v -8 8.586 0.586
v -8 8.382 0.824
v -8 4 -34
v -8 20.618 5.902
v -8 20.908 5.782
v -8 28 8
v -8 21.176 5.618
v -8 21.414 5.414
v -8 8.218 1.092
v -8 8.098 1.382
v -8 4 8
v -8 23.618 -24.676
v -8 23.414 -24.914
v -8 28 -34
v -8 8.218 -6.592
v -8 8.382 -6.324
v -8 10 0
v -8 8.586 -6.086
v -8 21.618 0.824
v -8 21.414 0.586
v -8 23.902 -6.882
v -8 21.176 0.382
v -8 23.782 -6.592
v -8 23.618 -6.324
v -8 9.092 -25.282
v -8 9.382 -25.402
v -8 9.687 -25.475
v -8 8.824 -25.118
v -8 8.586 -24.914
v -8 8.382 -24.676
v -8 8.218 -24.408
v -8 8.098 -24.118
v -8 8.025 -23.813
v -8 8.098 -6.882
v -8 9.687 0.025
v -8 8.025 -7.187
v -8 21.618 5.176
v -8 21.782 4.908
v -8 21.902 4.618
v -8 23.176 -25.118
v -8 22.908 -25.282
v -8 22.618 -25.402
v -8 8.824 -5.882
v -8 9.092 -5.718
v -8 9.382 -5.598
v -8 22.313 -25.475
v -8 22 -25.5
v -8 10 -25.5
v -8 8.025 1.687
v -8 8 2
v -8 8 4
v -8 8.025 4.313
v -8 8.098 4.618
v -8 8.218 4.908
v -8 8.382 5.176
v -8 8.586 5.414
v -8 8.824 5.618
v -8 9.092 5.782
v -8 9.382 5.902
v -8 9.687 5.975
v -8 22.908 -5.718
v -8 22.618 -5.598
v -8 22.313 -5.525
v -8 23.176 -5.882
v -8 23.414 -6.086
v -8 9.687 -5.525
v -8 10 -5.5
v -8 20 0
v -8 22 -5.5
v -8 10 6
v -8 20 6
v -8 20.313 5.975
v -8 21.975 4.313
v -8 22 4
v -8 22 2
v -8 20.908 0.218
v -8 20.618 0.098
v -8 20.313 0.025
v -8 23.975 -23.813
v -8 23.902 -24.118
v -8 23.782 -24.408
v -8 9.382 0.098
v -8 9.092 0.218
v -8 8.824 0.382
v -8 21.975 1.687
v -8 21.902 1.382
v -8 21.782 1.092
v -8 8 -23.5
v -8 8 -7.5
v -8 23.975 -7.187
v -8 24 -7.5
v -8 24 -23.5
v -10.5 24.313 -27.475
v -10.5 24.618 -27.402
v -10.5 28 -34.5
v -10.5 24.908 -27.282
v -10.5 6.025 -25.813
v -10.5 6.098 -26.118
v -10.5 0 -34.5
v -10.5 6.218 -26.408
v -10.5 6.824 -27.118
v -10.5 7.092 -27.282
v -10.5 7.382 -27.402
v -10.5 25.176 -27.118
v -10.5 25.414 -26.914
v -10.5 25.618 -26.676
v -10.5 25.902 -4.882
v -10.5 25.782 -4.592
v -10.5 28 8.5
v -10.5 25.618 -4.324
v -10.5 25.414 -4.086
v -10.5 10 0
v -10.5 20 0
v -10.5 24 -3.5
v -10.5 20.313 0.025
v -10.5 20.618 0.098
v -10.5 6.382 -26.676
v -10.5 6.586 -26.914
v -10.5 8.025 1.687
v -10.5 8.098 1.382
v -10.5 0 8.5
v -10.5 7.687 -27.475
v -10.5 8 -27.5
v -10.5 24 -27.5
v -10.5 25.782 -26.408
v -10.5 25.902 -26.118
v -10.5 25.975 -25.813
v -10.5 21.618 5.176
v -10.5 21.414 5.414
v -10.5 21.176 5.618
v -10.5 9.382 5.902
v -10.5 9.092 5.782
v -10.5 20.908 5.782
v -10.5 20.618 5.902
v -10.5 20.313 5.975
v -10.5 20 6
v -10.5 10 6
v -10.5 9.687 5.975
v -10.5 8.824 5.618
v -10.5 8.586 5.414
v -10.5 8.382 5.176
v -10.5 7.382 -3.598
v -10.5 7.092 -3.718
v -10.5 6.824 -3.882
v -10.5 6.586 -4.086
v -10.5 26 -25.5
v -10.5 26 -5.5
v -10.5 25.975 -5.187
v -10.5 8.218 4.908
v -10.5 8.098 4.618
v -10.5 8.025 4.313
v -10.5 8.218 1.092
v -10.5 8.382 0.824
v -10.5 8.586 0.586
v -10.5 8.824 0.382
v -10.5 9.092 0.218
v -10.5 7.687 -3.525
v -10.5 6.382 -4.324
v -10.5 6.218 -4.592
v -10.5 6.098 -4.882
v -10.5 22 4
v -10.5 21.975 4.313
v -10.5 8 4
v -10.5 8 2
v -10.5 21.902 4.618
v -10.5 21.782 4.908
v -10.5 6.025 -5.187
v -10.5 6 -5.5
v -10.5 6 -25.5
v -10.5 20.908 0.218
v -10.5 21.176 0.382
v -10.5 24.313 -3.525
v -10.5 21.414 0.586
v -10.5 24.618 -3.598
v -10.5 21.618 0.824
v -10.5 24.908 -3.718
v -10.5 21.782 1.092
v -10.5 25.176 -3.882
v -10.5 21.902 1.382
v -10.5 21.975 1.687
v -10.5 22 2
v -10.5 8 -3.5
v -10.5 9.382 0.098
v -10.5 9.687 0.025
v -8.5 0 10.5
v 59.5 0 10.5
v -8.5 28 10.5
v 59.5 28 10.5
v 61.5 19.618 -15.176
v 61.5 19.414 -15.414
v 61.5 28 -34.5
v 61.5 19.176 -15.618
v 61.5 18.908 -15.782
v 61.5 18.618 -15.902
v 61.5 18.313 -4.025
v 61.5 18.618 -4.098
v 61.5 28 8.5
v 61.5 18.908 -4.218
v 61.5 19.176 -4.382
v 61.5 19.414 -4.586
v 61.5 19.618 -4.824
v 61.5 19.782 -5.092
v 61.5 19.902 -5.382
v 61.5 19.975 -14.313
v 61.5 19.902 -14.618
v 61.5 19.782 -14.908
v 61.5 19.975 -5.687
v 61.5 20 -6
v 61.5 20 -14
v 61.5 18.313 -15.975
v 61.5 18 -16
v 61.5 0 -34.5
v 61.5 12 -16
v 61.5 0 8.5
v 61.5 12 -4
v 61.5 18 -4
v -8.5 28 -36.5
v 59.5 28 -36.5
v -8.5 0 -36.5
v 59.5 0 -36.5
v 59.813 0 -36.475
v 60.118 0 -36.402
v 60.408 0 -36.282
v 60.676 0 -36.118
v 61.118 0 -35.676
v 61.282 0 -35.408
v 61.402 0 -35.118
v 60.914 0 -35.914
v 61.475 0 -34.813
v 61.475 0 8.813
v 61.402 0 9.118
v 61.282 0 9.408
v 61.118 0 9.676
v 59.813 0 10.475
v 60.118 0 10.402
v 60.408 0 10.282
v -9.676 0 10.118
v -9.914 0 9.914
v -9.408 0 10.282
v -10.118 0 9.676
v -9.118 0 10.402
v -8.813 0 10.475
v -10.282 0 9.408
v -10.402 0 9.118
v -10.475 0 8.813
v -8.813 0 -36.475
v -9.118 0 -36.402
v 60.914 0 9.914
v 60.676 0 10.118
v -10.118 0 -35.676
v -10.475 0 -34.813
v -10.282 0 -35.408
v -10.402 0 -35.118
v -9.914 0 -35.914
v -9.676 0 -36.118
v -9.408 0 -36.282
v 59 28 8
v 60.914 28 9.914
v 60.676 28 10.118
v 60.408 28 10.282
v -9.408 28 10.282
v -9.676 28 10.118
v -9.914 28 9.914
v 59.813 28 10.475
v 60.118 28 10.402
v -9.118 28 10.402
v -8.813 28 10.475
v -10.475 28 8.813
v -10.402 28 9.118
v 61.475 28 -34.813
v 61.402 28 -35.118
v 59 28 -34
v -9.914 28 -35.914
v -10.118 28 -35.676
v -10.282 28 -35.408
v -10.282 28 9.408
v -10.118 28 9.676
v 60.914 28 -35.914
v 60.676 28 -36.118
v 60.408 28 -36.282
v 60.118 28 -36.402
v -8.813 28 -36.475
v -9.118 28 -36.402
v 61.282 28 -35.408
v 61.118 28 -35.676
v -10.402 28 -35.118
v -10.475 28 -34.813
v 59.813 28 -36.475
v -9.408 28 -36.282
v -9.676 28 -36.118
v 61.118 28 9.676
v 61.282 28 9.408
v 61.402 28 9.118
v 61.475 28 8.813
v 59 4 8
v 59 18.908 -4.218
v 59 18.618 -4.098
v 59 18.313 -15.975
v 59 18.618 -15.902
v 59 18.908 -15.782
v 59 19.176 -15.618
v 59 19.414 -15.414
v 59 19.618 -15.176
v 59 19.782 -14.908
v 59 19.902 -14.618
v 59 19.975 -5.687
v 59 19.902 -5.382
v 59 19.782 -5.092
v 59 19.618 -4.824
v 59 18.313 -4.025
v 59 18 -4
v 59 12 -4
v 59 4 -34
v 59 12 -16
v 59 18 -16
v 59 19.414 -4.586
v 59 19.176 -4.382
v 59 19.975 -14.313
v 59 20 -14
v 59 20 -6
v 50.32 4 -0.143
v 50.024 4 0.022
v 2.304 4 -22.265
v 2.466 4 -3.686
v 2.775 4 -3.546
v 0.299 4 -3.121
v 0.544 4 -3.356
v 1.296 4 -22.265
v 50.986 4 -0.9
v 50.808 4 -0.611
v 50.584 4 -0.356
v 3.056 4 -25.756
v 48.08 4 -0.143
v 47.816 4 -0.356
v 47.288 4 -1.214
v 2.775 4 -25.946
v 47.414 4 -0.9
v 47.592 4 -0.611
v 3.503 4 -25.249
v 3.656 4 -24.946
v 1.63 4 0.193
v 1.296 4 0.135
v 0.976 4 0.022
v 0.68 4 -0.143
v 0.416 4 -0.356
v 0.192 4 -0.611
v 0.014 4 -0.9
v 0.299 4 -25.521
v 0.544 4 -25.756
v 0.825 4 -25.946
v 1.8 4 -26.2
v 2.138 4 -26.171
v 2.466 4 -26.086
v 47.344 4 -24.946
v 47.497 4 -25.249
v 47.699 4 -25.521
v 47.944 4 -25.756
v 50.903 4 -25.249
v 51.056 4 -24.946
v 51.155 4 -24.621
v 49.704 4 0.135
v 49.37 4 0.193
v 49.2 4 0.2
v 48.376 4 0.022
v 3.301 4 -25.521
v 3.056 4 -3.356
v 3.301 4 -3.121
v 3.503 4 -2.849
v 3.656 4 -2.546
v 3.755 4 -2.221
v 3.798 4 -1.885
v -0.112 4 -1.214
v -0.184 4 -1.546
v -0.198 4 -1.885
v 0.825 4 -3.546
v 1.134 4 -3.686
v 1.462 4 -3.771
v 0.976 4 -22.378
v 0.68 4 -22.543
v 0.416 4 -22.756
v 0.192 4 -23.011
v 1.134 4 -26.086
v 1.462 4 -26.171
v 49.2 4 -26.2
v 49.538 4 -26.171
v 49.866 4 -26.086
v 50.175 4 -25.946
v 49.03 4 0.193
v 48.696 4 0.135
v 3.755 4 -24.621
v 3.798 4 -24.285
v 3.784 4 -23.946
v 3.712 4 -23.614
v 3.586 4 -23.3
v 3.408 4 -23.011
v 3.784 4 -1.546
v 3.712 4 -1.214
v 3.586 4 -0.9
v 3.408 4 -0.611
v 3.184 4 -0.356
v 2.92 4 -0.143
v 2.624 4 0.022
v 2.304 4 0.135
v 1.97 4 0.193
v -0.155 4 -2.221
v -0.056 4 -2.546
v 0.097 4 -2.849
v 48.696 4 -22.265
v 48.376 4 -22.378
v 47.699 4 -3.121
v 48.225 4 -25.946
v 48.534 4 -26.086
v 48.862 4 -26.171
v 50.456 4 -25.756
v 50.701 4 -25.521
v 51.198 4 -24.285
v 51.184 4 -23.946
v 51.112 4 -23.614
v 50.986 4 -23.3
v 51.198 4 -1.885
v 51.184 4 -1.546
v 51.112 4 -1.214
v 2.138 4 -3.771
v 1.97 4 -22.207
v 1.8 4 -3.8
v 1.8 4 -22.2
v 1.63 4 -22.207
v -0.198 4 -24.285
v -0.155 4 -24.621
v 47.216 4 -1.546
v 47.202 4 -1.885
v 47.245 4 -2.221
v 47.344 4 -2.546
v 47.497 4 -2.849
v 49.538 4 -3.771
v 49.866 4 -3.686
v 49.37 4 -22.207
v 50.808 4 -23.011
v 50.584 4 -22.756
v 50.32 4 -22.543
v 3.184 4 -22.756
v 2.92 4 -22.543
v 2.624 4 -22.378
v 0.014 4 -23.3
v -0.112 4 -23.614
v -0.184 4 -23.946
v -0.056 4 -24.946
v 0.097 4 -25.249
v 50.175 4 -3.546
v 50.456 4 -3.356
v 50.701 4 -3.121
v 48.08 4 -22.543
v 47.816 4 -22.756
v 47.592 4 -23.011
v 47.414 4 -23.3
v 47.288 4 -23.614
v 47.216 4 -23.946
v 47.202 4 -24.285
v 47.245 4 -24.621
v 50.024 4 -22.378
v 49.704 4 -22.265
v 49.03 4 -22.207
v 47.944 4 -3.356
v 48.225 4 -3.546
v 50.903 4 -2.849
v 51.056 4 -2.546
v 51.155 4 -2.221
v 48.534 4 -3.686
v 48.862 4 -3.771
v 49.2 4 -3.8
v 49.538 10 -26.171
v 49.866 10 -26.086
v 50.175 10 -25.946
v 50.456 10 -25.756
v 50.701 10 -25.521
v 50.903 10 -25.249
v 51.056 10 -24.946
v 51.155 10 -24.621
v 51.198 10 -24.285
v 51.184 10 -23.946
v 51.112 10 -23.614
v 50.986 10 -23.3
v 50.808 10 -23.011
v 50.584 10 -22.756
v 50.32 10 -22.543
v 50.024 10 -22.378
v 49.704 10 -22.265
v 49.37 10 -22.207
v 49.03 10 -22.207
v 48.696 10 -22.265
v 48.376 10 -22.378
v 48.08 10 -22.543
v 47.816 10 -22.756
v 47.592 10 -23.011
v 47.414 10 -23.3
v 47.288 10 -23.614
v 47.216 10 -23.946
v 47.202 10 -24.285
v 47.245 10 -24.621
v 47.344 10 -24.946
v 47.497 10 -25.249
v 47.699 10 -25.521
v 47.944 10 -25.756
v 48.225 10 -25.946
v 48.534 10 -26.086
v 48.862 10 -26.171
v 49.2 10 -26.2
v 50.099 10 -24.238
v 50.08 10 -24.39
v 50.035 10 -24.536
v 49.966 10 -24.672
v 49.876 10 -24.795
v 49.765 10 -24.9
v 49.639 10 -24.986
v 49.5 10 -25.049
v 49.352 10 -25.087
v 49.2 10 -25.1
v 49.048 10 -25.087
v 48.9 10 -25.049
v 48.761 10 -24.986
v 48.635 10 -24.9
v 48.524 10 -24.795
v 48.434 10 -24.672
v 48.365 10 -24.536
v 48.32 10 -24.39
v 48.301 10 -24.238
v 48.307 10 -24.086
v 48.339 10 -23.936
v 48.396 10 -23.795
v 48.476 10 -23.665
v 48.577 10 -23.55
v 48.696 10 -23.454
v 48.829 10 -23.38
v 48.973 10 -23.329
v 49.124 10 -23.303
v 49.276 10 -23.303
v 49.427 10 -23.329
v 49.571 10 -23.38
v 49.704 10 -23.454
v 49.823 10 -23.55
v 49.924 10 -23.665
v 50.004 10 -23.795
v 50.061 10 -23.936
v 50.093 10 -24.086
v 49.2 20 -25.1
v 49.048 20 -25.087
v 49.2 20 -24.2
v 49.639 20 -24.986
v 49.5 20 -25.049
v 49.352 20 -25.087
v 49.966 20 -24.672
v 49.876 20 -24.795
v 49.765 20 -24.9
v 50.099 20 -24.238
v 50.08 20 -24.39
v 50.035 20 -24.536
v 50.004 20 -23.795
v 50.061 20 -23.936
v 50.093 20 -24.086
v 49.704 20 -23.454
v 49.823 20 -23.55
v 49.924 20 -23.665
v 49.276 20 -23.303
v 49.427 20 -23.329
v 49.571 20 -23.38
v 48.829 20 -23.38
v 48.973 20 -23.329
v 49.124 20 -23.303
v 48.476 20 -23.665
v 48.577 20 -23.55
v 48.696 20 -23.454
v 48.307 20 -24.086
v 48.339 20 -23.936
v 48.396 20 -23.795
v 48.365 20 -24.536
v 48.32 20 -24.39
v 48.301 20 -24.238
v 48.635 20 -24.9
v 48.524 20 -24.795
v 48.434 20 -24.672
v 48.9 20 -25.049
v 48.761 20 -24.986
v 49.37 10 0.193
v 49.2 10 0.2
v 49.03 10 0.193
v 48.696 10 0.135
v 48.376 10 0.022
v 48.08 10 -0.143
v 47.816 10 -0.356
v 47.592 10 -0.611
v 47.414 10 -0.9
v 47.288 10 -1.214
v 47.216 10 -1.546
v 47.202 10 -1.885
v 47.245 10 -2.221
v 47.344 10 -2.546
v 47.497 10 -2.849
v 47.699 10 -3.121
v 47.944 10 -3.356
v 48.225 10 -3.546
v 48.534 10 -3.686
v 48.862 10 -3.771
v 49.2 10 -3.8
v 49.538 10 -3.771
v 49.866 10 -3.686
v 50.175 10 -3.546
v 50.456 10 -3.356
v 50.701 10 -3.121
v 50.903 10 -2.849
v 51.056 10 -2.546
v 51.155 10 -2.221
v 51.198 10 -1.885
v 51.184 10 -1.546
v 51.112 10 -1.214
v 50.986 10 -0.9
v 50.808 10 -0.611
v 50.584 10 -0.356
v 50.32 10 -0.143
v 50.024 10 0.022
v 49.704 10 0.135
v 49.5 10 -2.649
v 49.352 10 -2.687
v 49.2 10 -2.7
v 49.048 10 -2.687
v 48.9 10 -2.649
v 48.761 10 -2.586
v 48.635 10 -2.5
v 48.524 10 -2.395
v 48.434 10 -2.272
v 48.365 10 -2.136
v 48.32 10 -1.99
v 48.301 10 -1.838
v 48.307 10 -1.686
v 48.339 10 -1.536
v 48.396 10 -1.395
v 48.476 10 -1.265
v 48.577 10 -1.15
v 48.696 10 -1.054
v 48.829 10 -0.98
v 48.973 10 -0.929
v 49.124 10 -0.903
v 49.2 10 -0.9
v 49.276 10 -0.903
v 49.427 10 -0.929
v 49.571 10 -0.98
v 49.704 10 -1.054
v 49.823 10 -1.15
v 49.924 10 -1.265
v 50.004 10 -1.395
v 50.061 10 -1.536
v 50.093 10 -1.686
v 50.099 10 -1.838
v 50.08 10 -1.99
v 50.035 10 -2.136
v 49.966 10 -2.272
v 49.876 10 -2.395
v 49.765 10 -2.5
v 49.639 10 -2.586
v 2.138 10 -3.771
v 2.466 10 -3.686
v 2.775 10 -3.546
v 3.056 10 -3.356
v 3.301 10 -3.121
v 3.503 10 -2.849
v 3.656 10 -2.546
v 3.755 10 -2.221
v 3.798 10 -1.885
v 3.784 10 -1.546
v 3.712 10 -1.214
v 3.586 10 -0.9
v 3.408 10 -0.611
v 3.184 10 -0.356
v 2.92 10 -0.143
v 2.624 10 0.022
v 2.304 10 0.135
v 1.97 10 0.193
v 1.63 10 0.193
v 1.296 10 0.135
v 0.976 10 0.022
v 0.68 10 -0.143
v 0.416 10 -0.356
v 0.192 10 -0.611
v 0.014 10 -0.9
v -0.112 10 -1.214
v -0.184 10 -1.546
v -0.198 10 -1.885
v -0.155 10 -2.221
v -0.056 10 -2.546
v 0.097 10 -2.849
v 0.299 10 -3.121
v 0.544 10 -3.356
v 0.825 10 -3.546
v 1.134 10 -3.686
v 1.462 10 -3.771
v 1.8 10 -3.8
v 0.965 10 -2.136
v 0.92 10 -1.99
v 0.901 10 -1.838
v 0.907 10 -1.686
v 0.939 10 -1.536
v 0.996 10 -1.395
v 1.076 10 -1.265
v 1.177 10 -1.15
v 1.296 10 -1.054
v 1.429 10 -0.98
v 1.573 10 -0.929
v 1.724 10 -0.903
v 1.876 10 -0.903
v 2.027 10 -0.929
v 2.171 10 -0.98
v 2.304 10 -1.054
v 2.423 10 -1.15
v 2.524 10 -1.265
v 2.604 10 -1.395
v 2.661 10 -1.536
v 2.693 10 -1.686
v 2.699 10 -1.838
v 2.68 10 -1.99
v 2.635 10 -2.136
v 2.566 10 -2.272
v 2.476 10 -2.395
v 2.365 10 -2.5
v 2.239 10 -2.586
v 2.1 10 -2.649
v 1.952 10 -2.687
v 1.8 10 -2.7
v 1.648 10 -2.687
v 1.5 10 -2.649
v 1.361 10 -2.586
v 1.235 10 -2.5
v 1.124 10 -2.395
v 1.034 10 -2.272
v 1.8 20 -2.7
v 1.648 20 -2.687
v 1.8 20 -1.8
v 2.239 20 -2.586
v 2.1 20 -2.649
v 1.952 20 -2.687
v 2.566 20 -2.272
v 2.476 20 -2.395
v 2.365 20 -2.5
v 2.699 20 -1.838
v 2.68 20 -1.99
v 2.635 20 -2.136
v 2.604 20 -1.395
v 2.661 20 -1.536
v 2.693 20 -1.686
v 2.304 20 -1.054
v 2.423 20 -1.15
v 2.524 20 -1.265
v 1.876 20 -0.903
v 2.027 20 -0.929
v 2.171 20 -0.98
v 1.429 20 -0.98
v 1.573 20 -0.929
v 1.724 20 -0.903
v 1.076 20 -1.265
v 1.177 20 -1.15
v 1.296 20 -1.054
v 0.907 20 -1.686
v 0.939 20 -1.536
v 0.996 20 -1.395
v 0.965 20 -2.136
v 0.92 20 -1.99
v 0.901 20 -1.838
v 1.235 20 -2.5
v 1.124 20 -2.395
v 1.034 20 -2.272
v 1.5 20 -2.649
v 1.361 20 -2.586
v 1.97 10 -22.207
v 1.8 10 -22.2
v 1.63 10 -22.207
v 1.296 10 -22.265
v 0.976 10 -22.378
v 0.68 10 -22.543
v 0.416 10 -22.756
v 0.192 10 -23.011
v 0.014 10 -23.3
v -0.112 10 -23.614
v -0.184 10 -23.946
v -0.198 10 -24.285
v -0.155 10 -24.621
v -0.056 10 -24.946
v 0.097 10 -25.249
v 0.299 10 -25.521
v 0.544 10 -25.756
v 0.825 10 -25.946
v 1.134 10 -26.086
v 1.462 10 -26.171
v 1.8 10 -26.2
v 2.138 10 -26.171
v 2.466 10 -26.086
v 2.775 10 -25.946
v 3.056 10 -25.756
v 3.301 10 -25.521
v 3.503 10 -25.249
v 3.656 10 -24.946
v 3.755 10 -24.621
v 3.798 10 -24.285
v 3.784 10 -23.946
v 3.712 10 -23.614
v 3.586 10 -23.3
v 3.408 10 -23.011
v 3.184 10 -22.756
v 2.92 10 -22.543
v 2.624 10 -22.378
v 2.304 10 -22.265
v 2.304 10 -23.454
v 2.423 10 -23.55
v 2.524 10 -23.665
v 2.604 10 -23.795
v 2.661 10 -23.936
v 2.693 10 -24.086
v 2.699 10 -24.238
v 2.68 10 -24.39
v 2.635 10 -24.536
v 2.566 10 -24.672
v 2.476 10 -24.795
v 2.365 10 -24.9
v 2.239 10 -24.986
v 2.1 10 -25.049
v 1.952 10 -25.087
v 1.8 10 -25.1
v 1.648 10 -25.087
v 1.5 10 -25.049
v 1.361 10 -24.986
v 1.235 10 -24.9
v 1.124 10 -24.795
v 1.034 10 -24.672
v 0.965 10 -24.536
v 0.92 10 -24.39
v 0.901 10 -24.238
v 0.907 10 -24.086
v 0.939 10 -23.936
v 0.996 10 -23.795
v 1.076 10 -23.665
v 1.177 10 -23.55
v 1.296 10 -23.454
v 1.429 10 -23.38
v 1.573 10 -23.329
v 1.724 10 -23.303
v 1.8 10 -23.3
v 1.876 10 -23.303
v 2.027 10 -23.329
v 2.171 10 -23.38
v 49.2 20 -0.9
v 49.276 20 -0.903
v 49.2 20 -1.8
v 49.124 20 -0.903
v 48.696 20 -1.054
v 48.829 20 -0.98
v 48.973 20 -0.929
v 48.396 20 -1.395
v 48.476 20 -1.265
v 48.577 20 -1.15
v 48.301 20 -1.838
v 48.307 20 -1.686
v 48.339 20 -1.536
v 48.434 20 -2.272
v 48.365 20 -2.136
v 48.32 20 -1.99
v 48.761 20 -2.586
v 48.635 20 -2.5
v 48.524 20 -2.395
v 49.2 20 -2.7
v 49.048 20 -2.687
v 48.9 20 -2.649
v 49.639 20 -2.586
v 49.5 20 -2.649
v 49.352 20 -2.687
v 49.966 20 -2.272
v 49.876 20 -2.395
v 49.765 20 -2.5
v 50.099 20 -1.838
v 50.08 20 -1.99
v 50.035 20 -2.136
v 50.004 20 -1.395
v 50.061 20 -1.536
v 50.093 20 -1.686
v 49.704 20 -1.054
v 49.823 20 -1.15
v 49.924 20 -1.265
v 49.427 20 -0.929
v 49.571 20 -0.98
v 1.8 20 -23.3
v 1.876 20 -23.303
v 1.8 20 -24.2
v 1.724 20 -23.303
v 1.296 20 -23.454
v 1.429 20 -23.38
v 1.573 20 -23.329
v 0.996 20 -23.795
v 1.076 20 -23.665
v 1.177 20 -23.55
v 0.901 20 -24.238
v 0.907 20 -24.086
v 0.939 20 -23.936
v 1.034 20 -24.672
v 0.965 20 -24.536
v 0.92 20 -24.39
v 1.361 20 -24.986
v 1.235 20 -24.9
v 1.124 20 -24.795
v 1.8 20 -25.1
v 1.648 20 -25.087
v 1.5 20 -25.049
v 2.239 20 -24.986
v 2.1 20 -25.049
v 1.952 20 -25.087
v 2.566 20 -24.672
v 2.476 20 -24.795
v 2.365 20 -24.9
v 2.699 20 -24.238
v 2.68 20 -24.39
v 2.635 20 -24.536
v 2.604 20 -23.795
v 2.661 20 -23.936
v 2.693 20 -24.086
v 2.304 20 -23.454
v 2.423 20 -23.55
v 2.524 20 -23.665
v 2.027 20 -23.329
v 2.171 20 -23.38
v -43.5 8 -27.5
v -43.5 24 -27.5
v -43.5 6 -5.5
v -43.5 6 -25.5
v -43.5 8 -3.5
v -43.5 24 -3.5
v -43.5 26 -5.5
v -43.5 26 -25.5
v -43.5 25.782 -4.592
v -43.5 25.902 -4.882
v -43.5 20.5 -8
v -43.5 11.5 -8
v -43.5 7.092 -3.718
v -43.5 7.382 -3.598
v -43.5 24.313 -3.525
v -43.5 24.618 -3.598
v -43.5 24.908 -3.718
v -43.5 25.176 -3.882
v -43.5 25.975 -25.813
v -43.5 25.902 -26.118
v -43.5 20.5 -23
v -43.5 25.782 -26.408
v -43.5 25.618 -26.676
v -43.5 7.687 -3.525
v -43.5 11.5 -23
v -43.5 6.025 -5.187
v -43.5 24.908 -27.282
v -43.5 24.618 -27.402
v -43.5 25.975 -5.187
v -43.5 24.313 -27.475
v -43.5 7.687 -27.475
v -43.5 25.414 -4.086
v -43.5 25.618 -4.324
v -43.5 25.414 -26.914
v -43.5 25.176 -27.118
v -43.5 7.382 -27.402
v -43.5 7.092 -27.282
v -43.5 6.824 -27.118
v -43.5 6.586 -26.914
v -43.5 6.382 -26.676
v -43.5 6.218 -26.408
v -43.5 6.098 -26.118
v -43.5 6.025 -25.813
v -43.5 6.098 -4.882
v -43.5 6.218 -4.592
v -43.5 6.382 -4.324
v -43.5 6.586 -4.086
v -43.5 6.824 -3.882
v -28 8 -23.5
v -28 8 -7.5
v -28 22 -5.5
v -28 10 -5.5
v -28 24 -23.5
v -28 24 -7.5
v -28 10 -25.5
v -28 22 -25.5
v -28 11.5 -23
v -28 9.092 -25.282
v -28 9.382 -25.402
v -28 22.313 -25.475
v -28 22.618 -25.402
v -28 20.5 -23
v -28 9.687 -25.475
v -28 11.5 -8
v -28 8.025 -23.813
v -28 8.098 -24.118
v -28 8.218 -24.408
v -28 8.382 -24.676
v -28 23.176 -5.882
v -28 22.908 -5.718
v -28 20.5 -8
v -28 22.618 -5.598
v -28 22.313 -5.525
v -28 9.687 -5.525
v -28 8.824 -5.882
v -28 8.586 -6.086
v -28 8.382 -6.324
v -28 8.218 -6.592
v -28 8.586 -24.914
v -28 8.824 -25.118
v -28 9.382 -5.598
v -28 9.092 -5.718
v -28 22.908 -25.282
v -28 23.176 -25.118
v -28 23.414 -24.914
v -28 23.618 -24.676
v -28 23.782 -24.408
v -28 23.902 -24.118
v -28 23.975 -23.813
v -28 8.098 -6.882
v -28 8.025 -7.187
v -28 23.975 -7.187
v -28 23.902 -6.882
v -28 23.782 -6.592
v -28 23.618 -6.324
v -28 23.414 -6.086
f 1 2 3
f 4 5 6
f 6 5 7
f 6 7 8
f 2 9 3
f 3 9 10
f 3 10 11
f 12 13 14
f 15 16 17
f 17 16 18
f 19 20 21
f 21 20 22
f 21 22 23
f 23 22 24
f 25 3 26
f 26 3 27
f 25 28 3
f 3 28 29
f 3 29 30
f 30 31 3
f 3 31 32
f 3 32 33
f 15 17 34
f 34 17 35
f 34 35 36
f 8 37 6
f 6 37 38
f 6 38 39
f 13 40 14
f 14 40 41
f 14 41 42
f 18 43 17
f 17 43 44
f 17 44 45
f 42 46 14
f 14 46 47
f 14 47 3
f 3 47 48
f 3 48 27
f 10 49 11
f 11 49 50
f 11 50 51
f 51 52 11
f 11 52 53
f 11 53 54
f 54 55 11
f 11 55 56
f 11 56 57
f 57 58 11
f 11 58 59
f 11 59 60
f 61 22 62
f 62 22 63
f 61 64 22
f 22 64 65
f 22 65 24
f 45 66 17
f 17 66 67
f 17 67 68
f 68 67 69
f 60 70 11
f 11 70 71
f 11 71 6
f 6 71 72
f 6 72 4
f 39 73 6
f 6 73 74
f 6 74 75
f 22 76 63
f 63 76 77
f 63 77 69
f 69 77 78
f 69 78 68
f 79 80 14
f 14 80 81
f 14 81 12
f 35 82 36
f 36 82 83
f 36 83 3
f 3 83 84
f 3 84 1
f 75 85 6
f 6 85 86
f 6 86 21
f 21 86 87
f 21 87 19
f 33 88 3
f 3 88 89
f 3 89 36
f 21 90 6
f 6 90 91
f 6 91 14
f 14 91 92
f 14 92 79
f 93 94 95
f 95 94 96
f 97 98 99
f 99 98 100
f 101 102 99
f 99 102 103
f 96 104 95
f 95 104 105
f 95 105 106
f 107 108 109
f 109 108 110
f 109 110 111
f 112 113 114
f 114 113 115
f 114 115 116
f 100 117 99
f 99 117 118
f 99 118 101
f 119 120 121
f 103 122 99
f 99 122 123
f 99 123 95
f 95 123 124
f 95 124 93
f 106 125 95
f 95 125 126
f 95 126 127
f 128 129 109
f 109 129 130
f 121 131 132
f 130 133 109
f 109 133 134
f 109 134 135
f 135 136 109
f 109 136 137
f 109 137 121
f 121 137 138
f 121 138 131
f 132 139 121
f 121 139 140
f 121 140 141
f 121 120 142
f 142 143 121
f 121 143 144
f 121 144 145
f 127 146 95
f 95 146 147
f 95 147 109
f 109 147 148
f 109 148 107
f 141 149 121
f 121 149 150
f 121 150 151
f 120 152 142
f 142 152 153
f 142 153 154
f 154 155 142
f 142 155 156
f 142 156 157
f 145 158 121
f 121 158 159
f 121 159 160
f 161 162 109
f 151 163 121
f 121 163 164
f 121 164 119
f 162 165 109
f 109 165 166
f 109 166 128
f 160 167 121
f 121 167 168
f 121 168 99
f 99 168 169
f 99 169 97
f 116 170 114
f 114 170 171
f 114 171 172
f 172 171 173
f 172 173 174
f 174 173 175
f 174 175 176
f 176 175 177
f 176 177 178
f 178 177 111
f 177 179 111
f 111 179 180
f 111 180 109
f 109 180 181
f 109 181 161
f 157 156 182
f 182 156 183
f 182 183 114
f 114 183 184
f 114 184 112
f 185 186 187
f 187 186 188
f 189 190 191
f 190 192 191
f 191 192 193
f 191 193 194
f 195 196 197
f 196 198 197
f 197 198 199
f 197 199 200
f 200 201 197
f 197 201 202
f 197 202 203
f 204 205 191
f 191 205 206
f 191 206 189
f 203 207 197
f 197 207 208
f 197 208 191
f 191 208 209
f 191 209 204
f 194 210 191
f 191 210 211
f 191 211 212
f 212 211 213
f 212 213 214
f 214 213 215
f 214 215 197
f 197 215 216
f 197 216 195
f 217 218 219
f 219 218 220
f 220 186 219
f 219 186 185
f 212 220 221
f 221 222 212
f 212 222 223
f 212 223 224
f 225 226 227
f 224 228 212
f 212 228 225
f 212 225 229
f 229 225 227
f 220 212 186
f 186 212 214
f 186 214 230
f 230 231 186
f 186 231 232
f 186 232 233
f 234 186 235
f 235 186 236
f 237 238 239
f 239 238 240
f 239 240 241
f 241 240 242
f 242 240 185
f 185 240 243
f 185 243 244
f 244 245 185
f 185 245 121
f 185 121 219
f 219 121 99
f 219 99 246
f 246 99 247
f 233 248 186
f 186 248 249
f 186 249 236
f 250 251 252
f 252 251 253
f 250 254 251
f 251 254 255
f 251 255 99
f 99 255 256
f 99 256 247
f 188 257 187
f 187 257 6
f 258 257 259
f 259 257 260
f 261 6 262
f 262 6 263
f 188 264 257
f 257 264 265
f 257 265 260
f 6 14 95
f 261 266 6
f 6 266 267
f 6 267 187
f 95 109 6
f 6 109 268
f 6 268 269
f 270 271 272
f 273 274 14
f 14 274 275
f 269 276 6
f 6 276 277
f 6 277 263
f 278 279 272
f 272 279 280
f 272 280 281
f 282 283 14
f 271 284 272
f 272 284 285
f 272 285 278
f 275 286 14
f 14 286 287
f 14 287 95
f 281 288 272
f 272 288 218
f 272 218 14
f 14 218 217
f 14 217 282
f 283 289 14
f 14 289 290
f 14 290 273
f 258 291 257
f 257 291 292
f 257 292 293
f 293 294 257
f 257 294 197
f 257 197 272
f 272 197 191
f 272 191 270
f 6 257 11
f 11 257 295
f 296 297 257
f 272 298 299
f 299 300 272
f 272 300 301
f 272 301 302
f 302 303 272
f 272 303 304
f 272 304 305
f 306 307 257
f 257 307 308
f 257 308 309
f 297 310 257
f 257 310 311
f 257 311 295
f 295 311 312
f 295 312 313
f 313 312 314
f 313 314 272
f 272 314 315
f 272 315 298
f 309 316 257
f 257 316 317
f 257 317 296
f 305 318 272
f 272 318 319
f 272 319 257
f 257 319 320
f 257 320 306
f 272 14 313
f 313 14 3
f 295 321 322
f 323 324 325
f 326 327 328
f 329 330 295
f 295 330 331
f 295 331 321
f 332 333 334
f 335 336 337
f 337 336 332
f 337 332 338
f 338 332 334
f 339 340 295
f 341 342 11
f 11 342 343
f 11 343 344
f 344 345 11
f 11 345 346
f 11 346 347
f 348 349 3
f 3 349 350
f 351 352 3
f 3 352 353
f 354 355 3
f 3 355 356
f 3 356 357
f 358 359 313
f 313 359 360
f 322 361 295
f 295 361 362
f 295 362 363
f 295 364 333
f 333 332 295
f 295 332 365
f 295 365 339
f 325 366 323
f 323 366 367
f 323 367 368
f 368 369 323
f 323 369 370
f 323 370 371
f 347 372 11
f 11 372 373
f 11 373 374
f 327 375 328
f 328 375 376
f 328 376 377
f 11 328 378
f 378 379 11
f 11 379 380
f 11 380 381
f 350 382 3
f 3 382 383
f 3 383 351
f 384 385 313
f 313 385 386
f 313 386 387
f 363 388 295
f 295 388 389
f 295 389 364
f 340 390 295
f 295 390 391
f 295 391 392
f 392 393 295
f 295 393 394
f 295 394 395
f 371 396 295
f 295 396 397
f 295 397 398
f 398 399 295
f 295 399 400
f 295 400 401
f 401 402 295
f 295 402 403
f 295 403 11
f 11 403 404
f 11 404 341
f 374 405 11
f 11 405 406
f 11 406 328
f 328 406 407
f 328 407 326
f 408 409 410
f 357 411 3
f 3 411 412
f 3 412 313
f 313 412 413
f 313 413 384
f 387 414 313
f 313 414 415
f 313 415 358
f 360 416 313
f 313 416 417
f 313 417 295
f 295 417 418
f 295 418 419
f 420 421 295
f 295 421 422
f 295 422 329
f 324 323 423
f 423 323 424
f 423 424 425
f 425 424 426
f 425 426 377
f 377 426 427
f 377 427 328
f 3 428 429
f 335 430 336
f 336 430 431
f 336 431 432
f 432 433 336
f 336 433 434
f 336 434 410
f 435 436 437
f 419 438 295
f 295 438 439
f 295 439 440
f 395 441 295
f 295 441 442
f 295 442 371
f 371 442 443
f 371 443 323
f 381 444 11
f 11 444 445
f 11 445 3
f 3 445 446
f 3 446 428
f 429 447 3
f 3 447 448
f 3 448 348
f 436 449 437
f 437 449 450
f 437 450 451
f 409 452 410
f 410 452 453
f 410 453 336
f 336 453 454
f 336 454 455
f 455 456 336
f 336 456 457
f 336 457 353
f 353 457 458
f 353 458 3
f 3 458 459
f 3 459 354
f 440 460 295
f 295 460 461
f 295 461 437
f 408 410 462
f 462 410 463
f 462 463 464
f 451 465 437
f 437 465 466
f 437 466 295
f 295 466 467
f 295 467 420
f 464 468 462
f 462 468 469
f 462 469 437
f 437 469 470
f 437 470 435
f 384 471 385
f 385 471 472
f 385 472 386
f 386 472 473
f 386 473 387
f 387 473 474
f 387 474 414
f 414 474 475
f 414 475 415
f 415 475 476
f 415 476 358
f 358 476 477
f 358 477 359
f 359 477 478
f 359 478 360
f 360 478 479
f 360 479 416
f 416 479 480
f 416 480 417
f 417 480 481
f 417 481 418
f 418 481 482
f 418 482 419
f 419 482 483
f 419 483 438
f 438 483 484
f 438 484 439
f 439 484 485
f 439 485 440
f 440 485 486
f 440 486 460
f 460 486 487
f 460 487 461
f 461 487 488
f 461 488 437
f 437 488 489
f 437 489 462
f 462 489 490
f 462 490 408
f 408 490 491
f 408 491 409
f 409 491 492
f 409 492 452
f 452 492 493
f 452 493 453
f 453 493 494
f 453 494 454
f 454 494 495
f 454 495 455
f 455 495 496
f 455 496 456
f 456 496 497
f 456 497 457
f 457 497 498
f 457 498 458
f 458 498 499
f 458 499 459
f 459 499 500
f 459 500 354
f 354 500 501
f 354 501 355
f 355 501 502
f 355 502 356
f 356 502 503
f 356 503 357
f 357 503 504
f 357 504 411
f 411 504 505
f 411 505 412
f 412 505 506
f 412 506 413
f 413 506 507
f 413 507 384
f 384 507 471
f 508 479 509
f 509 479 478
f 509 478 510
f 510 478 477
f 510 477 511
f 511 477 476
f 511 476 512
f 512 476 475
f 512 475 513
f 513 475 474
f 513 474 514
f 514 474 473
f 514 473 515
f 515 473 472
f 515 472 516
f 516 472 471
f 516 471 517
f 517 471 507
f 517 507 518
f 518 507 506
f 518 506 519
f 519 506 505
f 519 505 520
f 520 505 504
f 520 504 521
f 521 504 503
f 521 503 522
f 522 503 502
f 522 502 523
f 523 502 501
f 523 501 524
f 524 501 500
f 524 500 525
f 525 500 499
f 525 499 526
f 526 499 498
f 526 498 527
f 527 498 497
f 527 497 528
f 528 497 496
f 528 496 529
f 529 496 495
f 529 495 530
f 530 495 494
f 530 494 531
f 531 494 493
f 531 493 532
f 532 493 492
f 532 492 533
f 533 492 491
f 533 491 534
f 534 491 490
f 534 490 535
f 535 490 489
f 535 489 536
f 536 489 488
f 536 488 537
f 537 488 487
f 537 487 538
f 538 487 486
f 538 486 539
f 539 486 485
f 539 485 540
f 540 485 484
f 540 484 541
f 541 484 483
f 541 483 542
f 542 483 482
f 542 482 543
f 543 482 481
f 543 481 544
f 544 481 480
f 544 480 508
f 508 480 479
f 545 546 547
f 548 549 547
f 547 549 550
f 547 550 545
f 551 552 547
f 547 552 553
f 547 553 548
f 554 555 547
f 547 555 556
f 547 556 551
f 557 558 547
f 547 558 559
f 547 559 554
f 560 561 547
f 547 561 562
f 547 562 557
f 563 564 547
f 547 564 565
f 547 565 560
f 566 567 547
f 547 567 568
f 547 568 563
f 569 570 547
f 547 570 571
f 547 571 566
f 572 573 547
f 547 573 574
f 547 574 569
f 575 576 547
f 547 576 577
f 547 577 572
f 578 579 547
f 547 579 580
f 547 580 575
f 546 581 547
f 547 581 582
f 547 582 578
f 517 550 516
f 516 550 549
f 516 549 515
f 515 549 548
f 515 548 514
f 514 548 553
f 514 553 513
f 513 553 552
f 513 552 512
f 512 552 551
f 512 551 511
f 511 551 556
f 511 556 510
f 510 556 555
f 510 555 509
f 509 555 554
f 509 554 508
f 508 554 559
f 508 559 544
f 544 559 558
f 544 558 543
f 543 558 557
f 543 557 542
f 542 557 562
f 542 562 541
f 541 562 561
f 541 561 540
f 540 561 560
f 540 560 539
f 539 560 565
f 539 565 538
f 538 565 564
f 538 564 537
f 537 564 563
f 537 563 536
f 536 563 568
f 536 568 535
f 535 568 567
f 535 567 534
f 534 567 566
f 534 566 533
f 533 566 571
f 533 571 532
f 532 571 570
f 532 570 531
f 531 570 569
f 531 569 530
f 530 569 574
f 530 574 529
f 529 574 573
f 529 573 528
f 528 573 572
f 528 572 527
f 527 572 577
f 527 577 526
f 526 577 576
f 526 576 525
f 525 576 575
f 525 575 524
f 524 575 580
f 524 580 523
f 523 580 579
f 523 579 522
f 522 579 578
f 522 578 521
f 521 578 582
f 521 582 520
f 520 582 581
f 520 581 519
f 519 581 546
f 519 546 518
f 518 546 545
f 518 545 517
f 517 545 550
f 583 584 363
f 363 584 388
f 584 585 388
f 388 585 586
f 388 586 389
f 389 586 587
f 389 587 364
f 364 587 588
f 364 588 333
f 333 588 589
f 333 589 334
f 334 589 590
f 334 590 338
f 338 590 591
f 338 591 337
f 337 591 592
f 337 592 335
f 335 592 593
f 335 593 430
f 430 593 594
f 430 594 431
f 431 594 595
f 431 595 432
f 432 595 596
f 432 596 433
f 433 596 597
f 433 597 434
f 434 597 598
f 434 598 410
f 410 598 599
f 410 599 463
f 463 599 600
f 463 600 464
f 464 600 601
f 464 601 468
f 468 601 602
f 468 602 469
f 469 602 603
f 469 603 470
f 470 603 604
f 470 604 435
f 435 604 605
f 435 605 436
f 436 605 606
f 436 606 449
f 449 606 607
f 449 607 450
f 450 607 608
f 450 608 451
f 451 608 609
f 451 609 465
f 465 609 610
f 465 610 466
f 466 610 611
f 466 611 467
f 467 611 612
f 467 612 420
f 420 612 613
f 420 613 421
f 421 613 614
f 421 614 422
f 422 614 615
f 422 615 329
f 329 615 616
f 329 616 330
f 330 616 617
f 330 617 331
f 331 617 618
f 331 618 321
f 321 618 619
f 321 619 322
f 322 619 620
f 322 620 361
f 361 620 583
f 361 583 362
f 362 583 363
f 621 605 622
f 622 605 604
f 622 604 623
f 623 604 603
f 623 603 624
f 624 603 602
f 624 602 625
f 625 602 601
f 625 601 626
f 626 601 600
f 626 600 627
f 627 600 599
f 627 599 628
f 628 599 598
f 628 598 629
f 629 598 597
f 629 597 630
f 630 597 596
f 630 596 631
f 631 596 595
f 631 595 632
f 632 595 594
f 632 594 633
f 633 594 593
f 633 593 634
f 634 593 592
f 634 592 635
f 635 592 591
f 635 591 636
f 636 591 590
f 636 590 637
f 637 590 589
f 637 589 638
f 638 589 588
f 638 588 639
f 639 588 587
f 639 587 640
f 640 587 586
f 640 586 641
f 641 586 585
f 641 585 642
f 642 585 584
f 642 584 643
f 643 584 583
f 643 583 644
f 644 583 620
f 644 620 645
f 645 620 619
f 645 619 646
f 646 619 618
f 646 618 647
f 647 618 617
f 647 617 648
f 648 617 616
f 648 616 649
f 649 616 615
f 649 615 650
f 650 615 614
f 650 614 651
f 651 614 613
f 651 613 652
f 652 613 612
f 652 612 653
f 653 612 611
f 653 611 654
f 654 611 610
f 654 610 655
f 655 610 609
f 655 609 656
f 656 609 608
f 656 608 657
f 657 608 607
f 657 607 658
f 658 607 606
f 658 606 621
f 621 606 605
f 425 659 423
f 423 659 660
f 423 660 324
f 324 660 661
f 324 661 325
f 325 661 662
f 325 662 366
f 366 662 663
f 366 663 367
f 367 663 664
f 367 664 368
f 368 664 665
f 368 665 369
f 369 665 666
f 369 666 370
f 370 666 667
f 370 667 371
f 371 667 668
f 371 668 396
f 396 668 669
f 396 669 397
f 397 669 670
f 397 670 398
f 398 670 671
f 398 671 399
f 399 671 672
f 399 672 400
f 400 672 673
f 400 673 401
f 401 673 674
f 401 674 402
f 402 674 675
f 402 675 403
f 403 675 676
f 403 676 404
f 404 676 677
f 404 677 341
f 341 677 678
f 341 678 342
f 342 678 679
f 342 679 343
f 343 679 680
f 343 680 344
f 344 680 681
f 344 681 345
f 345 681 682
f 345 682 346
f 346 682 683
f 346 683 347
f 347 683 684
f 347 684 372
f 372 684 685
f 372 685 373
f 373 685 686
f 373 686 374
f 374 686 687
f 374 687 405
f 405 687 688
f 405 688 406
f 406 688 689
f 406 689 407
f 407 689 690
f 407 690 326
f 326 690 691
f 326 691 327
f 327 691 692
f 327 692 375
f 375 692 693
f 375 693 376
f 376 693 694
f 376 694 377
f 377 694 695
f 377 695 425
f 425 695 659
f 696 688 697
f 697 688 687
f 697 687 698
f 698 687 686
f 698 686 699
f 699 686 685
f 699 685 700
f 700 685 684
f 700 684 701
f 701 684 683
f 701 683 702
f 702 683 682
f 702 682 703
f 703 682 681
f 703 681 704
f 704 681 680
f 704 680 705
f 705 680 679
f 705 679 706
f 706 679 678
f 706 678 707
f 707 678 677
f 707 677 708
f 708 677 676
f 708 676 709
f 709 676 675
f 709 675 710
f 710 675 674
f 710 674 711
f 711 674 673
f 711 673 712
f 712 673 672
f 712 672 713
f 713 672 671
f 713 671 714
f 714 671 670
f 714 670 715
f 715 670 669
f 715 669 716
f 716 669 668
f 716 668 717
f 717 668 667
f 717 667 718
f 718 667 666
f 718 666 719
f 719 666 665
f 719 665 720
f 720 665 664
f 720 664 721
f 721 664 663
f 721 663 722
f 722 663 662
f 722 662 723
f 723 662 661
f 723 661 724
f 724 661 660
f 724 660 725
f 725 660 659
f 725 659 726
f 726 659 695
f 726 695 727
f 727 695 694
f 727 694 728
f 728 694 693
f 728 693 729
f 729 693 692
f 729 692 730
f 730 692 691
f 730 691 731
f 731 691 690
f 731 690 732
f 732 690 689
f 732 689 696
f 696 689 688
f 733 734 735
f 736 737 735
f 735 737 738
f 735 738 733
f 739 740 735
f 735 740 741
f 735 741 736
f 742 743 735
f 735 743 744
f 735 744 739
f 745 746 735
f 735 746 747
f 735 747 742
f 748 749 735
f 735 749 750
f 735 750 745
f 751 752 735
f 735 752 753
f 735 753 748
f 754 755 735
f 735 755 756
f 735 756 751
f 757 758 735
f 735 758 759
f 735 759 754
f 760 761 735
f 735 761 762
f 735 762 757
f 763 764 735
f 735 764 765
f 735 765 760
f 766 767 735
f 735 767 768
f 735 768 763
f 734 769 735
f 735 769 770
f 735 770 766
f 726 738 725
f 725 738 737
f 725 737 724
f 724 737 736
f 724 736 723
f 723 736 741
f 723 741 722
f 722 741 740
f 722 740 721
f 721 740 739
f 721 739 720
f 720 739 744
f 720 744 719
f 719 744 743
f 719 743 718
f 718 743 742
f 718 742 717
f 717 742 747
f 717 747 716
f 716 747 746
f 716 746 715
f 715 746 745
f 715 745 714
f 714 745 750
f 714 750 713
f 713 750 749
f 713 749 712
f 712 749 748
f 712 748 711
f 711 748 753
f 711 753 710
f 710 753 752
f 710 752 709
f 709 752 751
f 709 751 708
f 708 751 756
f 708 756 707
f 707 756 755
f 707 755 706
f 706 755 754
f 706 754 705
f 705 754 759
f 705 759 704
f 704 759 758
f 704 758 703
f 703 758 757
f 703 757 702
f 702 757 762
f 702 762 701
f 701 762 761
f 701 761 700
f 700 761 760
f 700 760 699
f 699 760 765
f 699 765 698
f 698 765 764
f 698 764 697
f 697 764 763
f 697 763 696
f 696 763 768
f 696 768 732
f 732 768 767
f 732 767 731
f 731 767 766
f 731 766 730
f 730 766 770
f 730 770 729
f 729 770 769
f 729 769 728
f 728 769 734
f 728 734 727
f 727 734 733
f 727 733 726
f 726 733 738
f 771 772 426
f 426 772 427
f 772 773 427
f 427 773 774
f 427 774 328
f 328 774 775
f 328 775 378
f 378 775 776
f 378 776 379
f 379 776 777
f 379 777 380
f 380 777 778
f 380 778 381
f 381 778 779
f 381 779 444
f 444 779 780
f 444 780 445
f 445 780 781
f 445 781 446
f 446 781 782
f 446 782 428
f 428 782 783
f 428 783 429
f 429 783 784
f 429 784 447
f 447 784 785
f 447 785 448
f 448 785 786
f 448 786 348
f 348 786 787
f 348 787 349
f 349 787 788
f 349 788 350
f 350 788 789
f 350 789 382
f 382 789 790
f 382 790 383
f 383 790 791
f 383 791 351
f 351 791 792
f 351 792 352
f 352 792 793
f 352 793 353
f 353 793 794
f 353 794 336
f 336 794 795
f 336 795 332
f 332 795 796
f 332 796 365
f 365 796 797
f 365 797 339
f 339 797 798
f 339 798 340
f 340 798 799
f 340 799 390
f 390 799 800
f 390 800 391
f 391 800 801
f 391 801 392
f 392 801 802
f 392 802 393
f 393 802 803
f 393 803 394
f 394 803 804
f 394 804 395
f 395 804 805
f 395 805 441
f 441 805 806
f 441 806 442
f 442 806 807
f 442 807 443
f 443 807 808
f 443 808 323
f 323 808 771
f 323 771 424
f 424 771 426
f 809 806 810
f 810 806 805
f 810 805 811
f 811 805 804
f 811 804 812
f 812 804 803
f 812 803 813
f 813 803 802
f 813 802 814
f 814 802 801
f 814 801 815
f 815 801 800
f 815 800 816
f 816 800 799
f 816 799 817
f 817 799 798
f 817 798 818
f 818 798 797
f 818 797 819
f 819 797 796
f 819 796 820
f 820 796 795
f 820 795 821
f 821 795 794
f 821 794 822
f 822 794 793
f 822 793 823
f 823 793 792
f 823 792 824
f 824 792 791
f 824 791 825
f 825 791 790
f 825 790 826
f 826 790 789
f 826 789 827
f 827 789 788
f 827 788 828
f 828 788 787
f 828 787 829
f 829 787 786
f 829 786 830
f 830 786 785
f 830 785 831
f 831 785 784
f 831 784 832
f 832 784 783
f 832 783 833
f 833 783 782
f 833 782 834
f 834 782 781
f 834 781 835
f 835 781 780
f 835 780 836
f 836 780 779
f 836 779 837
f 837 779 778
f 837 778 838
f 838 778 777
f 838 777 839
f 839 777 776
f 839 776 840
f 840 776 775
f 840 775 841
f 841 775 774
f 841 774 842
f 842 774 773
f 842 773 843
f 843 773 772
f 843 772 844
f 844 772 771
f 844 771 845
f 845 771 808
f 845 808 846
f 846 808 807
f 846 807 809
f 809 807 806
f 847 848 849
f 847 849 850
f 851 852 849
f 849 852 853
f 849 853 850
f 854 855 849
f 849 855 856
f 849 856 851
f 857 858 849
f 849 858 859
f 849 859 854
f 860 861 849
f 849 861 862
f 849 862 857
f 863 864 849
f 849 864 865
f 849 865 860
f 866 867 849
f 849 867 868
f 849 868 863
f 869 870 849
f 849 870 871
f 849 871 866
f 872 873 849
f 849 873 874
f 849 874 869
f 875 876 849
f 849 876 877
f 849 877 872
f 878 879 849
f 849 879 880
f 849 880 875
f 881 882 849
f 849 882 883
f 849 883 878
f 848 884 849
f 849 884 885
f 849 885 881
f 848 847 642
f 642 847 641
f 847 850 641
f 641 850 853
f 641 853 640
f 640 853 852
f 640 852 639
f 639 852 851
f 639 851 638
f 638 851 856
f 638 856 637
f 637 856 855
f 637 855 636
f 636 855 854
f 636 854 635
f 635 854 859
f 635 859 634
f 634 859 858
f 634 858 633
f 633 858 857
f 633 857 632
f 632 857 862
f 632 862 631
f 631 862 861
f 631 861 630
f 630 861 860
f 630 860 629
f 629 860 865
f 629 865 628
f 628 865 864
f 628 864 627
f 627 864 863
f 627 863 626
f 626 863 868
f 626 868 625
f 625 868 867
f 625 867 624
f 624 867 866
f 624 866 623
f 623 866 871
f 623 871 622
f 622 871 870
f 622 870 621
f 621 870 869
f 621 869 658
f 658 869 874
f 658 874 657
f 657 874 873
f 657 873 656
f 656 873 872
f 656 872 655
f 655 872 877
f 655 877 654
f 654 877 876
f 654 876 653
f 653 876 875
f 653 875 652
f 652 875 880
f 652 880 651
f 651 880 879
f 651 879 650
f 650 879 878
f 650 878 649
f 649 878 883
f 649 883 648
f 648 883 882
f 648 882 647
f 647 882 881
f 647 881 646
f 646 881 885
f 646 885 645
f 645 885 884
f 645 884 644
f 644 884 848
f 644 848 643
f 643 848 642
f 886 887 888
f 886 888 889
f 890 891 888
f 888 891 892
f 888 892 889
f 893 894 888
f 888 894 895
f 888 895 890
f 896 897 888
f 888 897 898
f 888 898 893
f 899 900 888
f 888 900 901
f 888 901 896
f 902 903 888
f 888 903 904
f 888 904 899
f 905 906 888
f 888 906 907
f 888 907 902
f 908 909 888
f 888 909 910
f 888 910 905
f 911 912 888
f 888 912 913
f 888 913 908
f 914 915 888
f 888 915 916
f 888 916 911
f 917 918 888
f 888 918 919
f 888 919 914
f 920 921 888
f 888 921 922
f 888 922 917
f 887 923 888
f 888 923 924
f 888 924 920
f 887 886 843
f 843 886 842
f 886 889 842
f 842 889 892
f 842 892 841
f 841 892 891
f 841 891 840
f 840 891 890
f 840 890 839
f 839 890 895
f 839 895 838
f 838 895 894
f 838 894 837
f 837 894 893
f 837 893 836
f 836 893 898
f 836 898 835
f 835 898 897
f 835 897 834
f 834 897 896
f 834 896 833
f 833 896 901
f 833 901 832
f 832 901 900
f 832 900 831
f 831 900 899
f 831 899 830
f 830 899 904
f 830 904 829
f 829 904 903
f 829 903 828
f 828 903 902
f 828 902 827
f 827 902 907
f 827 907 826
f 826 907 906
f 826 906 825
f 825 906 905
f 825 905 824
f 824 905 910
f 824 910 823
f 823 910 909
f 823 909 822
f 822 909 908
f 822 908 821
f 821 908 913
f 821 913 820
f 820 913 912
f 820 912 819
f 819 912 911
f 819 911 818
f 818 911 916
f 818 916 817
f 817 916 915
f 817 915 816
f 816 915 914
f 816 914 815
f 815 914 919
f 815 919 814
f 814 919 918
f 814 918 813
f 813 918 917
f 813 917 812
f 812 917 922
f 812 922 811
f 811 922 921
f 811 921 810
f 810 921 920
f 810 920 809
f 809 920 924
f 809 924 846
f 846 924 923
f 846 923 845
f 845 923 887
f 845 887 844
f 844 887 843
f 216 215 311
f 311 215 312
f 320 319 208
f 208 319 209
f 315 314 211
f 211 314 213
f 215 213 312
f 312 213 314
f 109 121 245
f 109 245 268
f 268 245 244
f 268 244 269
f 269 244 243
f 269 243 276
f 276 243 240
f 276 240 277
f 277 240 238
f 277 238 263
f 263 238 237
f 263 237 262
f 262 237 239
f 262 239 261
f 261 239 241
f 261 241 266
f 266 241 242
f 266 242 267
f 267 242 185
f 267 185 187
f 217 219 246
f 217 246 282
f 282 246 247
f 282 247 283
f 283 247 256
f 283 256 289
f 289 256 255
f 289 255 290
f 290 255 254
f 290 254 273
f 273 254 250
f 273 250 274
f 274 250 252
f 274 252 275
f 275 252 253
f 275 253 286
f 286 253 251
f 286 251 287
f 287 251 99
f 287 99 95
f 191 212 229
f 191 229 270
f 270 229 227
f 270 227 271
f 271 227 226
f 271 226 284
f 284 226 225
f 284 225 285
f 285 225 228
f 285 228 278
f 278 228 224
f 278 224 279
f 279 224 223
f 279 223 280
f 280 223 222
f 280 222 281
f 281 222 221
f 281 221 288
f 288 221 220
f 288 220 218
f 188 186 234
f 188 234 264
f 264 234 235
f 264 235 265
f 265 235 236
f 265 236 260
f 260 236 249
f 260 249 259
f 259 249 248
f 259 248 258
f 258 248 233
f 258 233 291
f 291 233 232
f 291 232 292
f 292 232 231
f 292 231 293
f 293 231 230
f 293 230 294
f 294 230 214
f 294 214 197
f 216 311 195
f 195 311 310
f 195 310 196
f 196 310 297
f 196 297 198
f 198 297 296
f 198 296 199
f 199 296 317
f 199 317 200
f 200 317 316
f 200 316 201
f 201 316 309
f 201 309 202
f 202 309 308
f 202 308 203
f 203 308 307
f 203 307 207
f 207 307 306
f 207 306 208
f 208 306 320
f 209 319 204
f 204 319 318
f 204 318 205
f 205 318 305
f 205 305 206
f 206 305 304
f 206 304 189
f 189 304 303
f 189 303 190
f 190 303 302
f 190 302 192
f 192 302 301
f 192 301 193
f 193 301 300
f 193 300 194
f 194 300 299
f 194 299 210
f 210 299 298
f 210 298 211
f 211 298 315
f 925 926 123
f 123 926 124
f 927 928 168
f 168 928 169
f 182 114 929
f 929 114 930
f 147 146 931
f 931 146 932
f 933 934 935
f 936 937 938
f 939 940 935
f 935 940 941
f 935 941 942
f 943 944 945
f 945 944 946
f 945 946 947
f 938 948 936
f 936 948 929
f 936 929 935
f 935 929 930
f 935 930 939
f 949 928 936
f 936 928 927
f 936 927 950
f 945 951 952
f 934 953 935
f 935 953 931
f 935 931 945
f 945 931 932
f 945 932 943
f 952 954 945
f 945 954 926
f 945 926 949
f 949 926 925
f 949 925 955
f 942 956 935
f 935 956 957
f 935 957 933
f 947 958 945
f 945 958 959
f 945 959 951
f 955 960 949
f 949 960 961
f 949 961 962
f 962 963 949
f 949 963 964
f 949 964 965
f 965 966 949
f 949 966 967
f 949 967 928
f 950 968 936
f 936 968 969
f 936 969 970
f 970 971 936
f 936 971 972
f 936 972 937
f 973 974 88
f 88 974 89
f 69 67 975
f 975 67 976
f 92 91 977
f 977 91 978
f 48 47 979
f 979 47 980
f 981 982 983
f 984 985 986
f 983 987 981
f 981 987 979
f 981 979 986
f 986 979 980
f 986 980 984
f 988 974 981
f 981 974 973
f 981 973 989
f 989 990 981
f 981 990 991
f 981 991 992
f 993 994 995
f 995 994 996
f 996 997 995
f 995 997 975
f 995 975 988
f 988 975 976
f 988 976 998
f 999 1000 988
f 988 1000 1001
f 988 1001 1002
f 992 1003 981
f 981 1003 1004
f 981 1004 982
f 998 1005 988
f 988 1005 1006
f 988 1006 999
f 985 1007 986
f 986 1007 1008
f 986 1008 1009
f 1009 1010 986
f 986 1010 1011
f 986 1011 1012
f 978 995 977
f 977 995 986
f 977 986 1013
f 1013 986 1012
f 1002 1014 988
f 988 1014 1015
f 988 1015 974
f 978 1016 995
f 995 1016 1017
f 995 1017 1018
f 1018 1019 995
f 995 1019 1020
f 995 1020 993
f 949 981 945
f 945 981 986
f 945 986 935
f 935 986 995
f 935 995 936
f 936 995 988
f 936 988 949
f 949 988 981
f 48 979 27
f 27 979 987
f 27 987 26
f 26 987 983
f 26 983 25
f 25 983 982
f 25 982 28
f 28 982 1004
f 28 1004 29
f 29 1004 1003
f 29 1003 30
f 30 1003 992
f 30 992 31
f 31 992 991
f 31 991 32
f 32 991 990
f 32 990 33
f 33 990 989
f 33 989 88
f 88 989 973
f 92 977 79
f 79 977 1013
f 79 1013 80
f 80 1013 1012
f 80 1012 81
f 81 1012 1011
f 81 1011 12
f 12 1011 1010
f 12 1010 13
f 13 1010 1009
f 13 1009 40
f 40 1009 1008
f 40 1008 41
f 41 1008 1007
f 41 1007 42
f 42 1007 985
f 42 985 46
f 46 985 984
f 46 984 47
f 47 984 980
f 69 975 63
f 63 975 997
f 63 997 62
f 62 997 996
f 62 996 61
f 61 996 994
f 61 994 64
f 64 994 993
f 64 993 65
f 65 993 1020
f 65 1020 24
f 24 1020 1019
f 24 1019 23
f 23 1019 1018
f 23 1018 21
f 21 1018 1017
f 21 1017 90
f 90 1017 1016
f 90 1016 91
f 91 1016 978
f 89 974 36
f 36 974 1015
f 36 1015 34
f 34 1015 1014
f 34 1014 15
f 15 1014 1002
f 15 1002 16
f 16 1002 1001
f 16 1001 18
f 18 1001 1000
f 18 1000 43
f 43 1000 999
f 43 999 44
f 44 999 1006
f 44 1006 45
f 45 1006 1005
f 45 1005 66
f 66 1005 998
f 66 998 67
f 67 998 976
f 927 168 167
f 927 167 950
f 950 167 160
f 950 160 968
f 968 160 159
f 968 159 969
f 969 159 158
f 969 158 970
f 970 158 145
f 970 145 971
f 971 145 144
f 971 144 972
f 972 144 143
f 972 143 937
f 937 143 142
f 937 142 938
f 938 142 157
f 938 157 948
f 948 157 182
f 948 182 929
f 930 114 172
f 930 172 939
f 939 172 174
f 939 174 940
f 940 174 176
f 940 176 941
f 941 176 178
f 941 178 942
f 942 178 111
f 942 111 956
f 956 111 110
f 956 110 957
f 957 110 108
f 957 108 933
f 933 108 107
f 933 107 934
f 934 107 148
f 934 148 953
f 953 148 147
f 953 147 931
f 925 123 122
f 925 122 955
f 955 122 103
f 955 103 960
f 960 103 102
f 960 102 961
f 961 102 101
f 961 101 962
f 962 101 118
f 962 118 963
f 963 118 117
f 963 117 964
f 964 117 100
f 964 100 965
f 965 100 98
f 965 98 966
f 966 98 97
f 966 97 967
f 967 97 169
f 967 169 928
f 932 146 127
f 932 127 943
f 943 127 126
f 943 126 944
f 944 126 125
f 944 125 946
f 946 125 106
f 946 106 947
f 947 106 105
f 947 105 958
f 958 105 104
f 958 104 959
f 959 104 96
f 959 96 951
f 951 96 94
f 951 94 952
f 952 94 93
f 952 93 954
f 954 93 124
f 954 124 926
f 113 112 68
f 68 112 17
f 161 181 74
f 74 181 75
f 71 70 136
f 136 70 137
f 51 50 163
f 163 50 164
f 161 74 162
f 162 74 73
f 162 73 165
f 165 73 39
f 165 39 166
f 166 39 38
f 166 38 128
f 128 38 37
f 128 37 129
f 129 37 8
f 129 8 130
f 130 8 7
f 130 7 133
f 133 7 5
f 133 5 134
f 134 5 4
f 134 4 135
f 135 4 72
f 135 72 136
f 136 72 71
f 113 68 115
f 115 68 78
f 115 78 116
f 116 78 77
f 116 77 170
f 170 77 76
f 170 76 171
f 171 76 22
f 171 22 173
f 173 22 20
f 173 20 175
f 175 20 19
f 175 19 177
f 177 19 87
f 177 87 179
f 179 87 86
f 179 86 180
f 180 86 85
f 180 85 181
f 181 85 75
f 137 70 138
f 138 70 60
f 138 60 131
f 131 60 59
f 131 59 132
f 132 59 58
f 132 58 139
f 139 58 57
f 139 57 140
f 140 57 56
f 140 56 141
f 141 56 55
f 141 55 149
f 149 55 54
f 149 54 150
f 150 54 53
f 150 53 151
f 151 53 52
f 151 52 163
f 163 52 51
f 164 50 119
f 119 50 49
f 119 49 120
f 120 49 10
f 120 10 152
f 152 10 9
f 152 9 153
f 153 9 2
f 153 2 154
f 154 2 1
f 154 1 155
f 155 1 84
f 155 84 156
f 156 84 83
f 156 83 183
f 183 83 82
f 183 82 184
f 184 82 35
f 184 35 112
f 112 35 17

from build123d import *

# Parameters (mm, degrees)
SKETCH1_W           = 72
SKETCH1_H           = 47
BOSS_EXTRUDE1_DEPTH = 4
SKETCH3_W           = 72
SKETCH3_H           = 47
SKETCH3_W_2         = 67
SKETCH3_H_2         = 42
BOSS_EXTRUDE3_DEPTH = 24
SKETCH2_R           = 0.9
BOSS_EXTRUDE4_DEPTH = 16
SKETCH4_R           = 2
BOSS_EXTRUDE5_DEPTH = 6
SKETCH5_W           = 12
SKETCH5_H           = 8
CUT_EXTRUDE1_DEPTH  = 6
FILLET2_R           = 2
FILLET3_R           = 2
SKETCH11_W          = 24
SKETCH11_H          = 20
BOSS_EXTRUDE7_DEPTH = 33
SKETCH12_W          = 20
SKETCH12_H          = 16
CUT_EXTRUDE4_DEPTH  = 20
SKETCH13_W          = 15
SKETCH13_H          = 9
CUT_EXTRUDE5_DEPTH  = 20
FILLET4_R           = 2
FILLET5_R           = 2
SKETCH14_W          = 6
SKETCH14_H          = 14
CUT_EXTRUDE6_DEPTH  = 5
FILLET6_R           = 2


with BuildPart() as part:
    # Sketch1 → Boss-Extrude1 (new body)
    with BuildSketch(Plane(origin=(0, 0, 0), x_dir=(1, 0, 0), z_dir=(0, 1, 0))):
        with Locations((25.5, 13)):
            Rectangle(SKETCH1_W, SKETCH1_H)
    extrude(amount=BOSS_EXTRUDE1_DEPTH)

    # Sketch3 → Boss-Extrude3 (add)
    with BuildSketch(Plane(origin=(0, 4, 0), x_dir=(1, 0, 0), z_dir=(0, 1, 0))):
        with Locations((25.5, 13)):
            Rectangle(SKETCH3_W, SKETCH3_H)
        with Locations((25.5, 13)):
            Rectangle(SKETCH3_W_2, SKETCH3_H_2, mode=Mode.SUBTRACT)
    extrude(amount=BOSS_EXTRUDE3_DEPTH)

    # Sketch2 → Boss-Extrude4 (add)
    with BuildSketch(Plane(origin=(0, 4, 0), x_dir=(1, 0, 0), z_dir=(0, 1, 0))):
        with Locations(Location((1.8, 24.2, 0), (0, 0, 270))):
            Circle(SKETCH2_R)
        with Locations(Location((1.8, 1.8, 0), (0, 0, 90))):
            Circle(SKETCH2_R)
        with Locations(Location((49.2, 1.8, 0), (0, 0, 270))):
            Circle(SKETCH2_R)
        with Locations(Location((49.2, 24.2, 0), (0, 0, 90))):
            Circle(SKETCH2_R)
    extrude(amount=BOSS_EXTRUDE4_DEPTH)

    # Sketch4 → Boss-Extrude5 (add)
    with BuildSketch(Plane(origin=(0, 4, 0), x_dir=(1, 0, 0), z_dir=(0, 1, 0))):
        with Locations(Location((1.8, 24.2, 0), (0, 0, 270))):
            Circle(SKETCH4_R)
        with Locations(Location((1.8, 1.8, 0), (0, 0, 90))):
            Circle(SKETCH4_R)
        with Locations(Location((49.2, 1.8, 0), (0, 0, 270))):
            Circle(SKETCH4_R)
        with Locations(Location((49.2, 24.2, 0), (0, 0, 90))):
            Circle(SKETCH4_R)
    extrude(amount=BOSS_EXTRUDE5_DEPTH)

    # Sketch5 → Cut-Extrude1 (cut)
    with BuildSketch(Plane(origin=(61.5, 0, 0), x_dir=(0, 0, -1), z_dir=(1, 0, 0))):
        with Locations((10, 16)):
            Rectangle(SKETCH5_W, SKETCH5_H)
    extrude(amount=-CUT_EXTRUDE1_DEPTH, mode=Mode.SUBTRACT)

    # Fillet2
    fillet2_edges = [part.edges().sort_by_distance(p)[0] for p in [
        (-10.5, 14, 10.5),
        (-10.5, 14, -36.5),
        (61.5, 14, -36.5),
        (61.5, 14, 10.5),
    ]]
    fillet(fillet2_edges, radius=FILLET2_R)

    # Fillet3
    fillet3_edges = [part.edges().sort_by_distance(p)[0] for p in [
        (60.25, 20, -4),
        (60.25, 20, -16),
    ]]
    fillet(fillet3_edges, radius=FILLET3_R)

    # Sketch11 → Boss-Extrude7 (add)
    with BuildSketch(Plane.ZY.offset(10.5)):
        with Locations((-15.5, 16)):
            Rectangle(SKETCH11_W, SKETCH11_H)
    extrude(amount=BOSS_EXTRUDE7_DEPTH)

    # Sketch12 → Cut-Extrude4 (cut)
    with BuildSketch(Plane(origin=(-8, 0, 0), x_dir=(0, 0, -1), z_dir=(1, 0, 0))):
        with Locations((15.5, 16)):
            Rectangle(SKETCH12_W, SKETCH12_H)
    extrude(amount=-CUT_EXTRUDE4_DEPTH, mode=Mode.SUBTRACT)

    # Sketch13 → Cut-Extrude5 (cut)
    with BuildSketch(Plane.ZY.offset(43.5)):
        with Locations((-15.5, 16)):
            Rectangle(SKETCH13_W, SKETCH13_H)
    extrude(amount=-CUT_EXTRUDE5_DEPTH, mode=Mode.SUBTRACT)

    # Fillet4
    fillet4_edges = [part.edges().sort_by_distance(p)[0] for p in [
        (-18, 8, -25.5),
        (-18, 8, -5.5),
        (-18, 24, -5.5),
        (-18, 24, -25.5),
    ]]
    fillet(fillet4_edges, radius=FILLET4_R)

    # Fillet5
    fillet5_edges = [part.edges().sort_by_distance(p)[0] for p in [
        (-27, 26, -27.5),
        (-27, 6, -27.5),
        (-27, 6, -3.5),
        (-27, 26, -3.5),
    ]]
    fillet(fillet5_edges, radius=FILLET5_R)

    # Sketch14 → Cut-Extrude6 (cut)
    with BuildSketch(Plane.ZY.offset(10.5)):
        with Locations((3, 15)):
            Rectangle(SKETCH14_W, SKETCH14_H)
    extrude(amount=-CUT_EXTRUDE6_DEPTH, mode=Mode.SUBTRACT)

    # Fillet6
    fillet6_edges = [part.edges().sort_by_distance(p)[0] for p in [
        (-9.25, 8, 0),
        (-9.25, 22, 0),
        (-9.25, 22, 6),
        (-9.25, 8, 6),
    ]]
    fillet(fillet6_edges, radius=FILLET6_R)


solid = part.part
